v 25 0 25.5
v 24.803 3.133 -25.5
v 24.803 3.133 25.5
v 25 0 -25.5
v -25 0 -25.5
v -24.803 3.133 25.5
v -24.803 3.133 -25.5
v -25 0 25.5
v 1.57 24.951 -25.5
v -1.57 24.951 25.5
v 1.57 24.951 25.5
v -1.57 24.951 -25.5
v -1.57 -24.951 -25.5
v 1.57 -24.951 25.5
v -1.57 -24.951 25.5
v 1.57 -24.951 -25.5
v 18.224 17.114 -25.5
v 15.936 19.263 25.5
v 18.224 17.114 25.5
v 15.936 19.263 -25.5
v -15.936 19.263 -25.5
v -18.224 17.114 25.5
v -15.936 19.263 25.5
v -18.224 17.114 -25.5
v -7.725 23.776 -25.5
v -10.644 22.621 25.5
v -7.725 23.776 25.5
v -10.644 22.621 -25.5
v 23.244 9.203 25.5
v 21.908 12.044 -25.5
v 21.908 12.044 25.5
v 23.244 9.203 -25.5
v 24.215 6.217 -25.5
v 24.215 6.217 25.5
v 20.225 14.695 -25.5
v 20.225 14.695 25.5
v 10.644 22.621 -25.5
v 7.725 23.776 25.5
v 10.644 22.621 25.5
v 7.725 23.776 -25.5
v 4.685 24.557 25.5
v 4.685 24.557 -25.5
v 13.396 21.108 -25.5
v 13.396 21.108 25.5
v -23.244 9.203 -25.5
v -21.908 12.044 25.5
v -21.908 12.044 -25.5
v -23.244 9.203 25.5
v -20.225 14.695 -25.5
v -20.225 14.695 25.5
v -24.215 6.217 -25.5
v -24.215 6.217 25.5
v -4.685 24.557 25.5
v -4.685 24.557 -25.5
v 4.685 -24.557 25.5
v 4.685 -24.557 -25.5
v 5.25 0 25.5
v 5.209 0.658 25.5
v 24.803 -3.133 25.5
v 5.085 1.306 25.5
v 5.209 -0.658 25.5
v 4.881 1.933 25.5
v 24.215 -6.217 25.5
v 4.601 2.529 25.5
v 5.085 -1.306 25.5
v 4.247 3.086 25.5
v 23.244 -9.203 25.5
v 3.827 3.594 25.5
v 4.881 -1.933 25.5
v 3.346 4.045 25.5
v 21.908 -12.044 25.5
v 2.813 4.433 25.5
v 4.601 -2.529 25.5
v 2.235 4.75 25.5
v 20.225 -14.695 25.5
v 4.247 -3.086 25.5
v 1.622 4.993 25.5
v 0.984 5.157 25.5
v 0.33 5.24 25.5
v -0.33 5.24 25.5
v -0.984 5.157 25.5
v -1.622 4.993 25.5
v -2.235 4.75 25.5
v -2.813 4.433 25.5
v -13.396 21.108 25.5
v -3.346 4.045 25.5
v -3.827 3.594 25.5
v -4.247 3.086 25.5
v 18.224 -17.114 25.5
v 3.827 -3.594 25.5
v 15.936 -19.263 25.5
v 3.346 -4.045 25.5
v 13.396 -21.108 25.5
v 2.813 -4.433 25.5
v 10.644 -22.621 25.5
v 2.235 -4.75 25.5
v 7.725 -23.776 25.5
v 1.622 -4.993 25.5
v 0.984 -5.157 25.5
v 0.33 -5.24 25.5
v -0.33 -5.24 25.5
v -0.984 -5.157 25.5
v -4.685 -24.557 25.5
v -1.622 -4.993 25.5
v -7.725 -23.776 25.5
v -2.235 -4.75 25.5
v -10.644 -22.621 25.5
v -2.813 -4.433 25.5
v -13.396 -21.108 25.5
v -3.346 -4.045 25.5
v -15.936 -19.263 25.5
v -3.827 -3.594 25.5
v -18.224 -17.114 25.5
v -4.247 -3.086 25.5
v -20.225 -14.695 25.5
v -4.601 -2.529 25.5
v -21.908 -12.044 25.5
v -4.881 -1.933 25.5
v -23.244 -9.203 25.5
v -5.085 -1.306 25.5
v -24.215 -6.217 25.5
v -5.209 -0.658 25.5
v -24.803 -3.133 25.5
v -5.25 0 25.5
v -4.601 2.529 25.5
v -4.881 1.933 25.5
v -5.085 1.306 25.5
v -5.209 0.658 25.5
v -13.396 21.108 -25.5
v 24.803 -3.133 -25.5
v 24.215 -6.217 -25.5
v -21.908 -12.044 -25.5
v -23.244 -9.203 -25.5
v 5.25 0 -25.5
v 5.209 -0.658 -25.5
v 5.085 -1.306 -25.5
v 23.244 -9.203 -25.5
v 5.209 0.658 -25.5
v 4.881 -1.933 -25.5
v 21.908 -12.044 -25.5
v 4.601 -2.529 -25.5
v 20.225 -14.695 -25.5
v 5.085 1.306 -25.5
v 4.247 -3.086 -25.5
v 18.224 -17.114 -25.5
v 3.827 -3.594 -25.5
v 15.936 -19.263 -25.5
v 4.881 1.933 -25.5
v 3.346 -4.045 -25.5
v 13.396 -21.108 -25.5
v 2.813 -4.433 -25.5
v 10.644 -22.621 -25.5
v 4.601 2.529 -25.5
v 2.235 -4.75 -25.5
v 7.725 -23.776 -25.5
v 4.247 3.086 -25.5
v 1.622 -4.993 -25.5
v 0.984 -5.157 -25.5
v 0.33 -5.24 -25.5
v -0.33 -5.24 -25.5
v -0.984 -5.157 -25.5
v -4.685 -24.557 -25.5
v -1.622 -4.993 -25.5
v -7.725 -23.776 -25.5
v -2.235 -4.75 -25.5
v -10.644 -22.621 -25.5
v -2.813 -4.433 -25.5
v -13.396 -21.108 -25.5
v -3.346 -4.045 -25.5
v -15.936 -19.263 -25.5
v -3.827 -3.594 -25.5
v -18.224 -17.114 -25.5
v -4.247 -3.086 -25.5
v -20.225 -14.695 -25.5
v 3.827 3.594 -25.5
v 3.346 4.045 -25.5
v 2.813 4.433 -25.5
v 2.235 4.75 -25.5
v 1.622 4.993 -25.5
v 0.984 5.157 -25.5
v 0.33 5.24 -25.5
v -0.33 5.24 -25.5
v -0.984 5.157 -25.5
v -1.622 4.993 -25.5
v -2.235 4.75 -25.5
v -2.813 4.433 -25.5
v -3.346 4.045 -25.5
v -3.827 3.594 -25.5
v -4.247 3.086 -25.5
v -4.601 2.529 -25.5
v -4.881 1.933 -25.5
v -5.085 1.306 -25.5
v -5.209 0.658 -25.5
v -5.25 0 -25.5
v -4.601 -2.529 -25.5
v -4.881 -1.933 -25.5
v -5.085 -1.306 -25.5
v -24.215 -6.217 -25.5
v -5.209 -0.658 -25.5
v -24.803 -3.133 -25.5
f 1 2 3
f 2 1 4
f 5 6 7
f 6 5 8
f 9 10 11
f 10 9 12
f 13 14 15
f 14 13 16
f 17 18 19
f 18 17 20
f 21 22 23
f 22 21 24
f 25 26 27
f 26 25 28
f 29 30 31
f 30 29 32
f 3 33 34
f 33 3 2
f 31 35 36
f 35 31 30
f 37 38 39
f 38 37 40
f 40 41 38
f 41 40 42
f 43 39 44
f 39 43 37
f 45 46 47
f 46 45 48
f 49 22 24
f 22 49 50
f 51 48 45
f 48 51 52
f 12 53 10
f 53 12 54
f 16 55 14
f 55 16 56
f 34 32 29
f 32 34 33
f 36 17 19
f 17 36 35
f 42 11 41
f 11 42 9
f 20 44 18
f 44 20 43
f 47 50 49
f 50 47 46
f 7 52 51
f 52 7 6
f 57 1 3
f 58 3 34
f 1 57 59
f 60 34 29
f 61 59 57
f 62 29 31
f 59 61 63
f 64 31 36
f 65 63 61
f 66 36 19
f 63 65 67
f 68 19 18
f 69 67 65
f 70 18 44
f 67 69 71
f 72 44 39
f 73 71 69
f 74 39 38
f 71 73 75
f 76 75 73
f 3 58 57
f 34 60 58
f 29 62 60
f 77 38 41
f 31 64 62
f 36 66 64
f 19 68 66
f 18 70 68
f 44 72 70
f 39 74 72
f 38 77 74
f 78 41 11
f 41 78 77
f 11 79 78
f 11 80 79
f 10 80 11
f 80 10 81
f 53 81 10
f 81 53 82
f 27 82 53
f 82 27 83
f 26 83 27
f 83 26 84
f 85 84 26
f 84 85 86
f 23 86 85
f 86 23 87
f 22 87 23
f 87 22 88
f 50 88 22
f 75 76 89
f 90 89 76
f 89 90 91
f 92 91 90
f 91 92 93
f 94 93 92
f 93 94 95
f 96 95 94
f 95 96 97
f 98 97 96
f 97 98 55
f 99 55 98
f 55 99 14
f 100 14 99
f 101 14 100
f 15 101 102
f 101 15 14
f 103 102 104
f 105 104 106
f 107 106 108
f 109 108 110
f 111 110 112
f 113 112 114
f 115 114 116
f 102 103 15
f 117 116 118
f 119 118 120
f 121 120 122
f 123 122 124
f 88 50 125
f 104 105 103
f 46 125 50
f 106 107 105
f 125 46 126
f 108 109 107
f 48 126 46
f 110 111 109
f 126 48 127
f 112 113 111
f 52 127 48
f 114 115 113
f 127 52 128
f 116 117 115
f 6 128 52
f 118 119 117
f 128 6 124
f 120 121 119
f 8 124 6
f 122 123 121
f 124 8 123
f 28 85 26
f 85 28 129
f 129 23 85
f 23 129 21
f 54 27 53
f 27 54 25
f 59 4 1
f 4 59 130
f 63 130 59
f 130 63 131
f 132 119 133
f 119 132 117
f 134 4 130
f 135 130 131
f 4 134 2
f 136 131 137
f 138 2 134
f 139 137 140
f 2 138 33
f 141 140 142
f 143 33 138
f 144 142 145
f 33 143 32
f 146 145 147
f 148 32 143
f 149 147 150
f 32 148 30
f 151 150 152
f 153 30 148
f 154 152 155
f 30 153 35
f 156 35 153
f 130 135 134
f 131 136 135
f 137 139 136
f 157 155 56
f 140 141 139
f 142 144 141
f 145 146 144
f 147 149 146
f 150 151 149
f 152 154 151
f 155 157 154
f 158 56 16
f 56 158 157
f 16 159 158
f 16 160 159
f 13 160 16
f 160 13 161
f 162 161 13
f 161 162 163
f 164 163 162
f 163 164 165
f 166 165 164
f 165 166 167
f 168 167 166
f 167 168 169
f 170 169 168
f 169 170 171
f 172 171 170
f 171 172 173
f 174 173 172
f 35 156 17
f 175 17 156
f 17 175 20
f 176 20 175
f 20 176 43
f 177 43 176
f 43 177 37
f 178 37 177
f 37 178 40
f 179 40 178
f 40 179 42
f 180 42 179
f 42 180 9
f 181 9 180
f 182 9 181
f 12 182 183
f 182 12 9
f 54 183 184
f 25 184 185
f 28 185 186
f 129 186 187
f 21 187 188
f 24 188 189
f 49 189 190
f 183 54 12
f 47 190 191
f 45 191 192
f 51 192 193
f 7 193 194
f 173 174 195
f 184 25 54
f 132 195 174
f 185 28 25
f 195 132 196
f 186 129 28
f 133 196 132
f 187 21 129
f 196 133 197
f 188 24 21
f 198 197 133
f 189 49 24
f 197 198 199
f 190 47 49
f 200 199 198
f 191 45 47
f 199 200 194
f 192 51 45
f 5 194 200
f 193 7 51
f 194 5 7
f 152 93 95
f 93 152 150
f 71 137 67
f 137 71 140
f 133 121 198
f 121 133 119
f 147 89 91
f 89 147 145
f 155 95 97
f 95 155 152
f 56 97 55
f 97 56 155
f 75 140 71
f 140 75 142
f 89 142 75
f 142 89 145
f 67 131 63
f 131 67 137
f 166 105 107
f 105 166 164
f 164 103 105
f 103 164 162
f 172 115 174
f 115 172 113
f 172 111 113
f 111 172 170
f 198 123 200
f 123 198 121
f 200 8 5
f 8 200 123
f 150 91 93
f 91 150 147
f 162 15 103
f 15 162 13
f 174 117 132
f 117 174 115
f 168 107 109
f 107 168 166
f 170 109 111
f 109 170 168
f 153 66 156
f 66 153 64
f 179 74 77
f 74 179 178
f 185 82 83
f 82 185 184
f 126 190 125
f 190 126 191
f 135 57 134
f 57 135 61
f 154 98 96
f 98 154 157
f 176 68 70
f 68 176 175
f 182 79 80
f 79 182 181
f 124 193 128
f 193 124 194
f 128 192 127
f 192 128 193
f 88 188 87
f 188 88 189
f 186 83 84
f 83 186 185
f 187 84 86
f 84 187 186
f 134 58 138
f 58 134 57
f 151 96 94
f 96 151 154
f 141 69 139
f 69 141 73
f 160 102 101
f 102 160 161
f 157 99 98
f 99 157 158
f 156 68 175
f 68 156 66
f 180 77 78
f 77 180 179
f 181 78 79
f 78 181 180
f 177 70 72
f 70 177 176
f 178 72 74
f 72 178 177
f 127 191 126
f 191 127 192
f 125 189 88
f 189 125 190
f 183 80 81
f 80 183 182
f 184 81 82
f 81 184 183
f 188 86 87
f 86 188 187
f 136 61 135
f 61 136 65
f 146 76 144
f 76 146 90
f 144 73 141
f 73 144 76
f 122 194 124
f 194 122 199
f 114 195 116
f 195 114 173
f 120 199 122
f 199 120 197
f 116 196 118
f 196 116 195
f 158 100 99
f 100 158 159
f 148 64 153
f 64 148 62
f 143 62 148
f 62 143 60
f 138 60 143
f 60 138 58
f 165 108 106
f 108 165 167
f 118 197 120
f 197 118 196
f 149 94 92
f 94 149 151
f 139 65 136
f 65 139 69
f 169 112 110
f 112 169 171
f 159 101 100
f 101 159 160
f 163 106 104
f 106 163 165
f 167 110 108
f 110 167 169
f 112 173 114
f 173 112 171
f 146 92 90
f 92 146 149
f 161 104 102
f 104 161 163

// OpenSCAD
$fn = 50;


difference() {
	union() {
		translate(v = [0, 0, -25.5000000000]) {
			cylinder(h = 51, r = 25.0000000000);
		}
	}
	union() {
		translate(v = [0, 0, -100.0000000000]) {
			cylinder(h = 200, r = 5.2500000000);
		}
	}
}
